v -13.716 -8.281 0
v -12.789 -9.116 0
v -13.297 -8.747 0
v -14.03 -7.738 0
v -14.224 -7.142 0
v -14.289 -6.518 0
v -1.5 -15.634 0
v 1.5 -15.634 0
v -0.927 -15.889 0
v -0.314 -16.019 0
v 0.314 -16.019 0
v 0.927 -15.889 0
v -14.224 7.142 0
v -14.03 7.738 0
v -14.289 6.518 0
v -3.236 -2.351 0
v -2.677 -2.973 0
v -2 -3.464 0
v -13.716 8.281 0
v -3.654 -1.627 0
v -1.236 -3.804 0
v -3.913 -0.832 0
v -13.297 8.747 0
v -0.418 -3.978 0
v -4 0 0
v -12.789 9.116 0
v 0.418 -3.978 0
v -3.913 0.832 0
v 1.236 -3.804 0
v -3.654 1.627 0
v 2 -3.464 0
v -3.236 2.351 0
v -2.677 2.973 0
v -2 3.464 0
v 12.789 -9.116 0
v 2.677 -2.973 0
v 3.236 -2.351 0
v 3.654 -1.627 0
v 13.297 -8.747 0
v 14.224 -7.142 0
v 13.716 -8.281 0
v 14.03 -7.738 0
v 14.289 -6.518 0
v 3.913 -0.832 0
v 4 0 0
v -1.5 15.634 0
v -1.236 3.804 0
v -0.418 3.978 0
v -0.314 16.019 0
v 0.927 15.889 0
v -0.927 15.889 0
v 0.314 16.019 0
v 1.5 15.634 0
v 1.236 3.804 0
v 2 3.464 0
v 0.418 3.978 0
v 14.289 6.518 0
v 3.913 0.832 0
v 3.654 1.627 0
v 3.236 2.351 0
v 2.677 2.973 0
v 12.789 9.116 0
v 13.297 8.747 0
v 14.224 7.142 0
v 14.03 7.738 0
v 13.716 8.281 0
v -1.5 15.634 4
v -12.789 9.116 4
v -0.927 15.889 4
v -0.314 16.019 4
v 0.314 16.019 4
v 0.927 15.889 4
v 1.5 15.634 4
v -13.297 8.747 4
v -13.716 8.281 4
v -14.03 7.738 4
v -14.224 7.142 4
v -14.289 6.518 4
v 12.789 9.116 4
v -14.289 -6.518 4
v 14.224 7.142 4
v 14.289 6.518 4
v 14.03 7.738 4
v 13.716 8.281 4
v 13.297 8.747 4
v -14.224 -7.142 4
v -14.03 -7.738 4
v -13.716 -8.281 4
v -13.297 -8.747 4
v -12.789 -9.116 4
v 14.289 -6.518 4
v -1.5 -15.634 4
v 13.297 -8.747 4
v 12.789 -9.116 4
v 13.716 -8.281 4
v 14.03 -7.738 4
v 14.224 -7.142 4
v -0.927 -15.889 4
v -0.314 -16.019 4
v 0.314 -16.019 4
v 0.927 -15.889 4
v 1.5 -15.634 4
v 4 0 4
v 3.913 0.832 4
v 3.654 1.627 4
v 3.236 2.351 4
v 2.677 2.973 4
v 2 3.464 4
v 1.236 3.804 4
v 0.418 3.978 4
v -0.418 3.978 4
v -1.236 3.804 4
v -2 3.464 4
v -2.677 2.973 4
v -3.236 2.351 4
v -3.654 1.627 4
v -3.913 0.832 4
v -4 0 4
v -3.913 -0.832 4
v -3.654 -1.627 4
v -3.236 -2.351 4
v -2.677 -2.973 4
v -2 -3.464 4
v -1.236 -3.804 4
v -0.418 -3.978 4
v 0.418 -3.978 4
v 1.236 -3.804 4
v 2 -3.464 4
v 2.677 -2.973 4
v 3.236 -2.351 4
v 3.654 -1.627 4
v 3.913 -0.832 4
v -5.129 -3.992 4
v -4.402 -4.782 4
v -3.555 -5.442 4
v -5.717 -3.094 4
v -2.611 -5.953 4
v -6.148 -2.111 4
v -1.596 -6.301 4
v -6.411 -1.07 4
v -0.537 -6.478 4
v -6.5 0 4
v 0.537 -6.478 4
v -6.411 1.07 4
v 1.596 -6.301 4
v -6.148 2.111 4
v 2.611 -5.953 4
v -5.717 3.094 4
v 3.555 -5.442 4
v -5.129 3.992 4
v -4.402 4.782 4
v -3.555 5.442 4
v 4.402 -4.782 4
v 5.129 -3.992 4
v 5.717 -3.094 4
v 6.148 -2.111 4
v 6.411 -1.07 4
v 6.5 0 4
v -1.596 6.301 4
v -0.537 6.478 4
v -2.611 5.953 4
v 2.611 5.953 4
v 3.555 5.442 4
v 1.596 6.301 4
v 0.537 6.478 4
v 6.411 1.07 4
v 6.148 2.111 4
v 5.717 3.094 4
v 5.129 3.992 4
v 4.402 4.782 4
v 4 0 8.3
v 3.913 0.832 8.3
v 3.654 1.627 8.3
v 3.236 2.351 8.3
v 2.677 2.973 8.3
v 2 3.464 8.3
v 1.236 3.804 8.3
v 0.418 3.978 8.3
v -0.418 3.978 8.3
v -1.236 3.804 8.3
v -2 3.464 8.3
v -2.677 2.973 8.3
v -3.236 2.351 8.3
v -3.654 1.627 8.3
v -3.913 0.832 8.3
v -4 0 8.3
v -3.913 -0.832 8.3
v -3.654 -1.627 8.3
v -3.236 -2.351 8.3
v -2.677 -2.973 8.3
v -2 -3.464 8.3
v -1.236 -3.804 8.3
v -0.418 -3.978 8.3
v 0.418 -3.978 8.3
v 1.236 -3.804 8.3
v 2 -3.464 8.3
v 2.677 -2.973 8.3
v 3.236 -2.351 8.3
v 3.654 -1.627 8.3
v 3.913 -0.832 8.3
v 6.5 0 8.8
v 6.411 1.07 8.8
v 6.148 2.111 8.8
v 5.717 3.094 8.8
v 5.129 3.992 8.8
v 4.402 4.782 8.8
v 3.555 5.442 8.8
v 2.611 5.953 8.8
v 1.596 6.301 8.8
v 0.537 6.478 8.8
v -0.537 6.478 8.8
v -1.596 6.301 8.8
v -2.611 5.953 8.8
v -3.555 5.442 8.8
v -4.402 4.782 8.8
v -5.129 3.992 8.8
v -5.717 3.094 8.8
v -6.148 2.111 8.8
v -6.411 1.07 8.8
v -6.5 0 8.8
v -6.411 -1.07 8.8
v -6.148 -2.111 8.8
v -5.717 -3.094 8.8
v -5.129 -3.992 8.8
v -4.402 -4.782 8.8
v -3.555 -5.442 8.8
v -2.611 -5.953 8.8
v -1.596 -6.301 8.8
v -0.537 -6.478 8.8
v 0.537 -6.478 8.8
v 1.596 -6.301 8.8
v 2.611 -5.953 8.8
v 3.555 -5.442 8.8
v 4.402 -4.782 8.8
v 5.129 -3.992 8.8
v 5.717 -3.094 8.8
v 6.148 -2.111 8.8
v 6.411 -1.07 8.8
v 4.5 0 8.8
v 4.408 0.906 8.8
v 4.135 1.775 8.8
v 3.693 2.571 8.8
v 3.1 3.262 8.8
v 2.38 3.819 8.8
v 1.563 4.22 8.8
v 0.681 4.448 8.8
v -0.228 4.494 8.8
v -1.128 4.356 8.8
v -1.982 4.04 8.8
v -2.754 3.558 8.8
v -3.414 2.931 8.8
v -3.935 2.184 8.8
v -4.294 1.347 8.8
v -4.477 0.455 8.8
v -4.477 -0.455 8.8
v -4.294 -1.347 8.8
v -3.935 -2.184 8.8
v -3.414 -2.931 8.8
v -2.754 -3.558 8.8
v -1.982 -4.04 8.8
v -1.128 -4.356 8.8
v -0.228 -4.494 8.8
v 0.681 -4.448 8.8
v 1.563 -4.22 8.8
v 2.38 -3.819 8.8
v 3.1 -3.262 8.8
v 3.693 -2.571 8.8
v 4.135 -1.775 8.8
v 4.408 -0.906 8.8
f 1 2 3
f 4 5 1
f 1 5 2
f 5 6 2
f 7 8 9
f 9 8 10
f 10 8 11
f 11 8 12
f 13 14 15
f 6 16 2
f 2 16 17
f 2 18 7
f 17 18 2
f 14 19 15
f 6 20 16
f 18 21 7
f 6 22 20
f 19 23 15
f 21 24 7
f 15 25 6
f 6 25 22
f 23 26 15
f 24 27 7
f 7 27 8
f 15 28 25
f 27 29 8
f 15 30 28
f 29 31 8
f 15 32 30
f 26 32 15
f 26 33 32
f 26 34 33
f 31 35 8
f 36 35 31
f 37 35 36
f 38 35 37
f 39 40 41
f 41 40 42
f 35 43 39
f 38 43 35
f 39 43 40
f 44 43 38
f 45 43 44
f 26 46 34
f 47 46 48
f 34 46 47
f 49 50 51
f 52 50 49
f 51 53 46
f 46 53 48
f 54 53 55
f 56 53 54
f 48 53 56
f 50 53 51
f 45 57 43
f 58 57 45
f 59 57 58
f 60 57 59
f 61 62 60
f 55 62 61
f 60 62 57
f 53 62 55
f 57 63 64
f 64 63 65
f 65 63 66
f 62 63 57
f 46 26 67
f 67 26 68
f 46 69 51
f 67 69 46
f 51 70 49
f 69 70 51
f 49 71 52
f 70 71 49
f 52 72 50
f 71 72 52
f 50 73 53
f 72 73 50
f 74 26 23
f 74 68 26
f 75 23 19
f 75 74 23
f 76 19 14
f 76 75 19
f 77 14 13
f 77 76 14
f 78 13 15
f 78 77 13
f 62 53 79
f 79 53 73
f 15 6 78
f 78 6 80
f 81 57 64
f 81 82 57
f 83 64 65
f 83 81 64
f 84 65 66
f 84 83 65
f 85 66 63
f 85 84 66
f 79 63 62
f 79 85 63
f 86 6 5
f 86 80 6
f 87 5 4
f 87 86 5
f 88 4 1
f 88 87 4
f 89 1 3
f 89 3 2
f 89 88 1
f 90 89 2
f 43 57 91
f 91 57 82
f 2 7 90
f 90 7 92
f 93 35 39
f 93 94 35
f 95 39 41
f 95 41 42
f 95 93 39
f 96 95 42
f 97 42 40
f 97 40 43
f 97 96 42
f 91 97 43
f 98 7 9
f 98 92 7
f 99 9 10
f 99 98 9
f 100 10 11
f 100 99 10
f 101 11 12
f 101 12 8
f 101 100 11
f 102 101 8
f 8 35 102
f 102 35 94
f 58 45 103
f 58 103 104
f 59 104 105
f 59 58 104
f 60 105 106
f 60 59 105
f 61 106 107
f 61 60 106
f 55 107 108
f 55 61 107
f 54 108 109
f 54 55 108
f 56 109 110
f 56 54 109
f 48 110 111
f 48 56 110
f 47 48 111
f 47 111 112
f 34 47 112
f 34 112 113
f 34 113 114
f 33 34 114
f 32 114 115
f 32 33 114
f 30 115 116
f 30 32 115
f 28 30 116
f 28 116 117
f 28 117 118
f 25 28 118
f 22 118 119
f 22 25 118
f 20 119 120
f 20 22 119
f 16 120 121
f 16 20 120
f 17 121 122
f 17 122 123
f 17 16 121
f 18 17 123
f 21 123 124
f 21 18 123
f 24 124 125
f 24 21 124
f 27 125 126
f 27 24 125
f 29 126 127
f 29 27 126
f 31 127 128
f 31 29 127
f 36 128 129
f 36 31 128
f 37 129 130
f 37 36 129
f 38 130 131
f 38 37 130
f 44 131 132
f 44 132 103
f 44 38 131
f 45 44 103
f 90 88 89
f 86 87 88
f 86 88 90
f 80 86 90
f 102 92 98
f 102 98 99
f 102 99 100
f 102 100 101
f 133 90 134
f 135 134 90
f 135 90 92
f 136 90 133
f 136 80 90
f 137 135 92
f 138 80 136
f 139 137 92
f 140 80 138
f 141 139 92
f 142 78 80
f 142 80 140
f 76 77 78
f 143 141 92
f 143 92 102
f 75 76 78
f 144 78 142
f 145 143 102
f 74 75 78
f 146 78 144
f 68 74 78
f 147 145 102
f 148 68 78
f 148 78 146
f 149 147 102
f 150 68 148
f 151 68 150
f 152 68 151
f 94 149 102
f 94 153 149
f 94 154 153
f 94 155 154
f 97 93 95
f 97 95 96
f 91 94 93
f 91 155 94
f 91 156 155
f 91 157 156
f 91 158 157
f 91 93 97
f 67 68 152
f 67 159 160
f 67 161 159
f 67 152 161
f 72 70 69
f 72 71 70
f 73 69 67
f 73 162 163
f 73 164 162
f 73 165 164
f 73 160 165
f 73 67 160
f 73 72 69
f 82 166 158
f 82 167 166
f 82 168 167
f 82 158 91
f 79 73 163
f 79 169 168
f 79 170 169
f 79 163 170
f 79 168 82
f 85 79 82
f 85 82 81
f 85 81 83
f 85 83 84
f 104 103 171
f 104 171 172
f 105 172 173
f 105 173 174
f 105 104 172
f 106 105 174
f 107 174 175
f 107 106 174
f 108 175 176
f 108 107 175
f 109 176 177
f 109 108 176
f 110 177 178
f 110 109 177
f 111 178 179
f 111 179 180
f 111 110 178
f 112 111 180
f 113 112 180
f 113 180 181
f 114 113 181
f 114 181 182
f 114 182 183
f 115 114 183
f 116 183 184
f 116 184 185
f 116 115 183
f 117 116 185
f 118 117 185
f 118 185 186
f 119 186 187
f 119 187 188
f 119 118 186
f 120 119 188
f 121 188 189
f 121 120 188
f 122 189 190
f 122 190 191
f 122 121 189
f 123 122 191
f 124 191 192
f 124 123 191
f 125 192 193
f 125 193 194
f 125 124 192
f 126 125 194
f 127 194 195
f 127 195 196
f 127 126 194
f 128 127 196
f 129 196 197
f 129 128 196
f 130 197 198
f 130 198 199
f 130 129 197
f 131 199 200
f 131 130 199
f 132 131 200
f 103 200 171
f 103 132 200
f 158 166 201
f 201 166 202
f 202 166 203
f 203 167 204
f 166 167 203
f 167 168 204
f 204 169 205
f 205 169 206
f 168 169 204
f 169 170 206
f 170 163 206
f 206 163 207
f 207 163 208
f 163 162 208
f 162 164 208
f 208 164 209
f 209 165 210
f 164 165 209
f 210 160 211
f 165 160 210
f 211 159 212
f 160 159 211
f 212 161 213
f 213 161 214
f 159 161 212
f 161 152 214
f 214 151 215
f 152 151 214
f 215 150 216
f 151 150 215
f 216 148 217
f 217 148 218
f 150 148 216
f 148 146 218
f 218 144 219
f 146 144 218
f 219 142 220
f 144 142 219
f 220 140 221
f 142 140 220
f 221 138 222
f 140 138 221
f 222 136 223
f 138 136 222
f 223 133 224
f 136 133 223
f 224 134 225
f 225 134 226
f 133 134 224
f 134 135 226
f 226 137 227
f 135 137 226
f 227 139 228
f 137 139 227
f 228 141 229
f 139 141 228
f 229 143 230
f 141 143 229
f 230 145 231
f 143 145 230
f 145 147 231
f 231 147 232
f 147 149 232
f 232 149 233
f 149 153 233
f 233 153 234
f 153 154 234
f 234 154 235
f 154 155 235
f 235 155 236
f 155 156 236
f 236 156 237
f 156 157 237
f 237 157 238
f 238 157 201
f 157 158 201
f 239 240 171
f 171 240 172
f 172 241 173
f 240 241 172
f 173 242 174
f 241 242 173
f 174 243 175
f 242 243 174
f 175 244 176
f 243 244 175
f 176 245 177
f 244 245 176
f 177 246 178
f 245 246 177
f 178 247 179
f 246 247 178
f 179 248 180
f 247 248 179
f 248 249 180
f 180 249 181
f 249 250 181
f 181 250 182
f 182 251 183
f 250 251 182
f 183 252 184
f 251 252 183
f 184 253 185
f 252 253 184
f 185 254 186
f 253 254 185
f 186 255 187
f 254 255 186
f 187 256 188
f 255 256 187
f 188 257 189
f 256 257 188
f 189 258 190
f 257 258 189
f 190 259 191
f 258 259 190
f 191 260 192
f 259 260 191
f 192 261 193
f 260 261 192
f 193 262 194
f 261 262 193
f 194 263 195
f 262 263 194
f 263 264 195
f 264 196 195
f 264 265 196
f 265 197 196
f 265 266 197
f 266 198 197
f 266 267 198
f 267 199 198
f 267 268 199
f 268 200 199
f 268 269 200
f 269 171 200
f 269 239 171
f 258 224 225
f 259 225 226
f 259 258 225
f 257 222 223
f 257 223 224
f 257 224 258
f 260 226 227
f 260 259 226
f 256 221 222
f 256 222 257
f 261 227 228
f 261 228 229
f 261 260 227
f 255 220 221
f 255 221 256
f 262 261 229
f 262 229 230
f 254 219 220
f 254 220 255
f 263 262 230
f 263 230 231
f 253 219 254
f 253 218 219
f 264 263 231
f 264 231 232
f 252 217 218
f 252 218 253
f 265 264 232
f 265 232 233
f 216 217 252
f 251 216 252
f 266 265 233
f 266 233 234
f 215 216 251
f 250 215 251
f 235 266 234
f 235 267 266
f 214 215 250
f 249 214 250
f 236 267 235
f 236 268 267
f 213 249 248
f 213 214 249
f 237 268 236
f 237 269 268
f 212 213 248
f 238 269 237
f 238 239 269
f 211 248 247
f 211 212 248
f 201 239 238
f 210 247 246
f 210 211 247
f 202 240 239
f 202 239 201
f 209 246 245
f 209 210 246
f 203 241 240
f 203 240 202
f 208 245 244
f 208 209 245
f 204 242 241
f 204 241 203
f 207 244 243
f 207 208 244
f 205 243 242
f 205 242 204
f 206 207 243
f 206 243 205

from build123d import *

# Parameters (mm, degrees)
SKETCH_R      = 4
PAD_DEPTH     = 4
SKETCH001_R   = 6.5
SKETCH001_R_2 = 4
PAD001_DEPTH  = 4.8
CHAMFER_SIZE  = 0.5
FILLET_R      = 3


with BuildPart() as part:
    # Sketch → Pad (new body)
    with BuildSketch(Plane.XY):
        Polygon((0, 16.5), (-14.289419, 8.25), (-14.289419, -8.25), (0, -16.5), (14.289419, -8.25), (14.289419, 8.25), align=None)
        Circle(SKETCH_R, mode=Mode.SUBTRACT)
    extrude(amount=PAD_DEPTH)

    # Sketch001 (on Face9 of Pad) → Pad001 (join)
    with BuildSketch(Plane.XY.offset(4)):
        Circle(SKETCH001_R)
        Circle(SKETCH001_R_2, mode=Mode.SUBTRACT)
    extrude(amount=PAD001_DEPTH)

    # Chamfer
    chamfer_edges = [part.edges().sort_by_distance(p)[0] for p in [
        (-4, 0, 8.8),
    ]]
    chamfer(chamfer_edges, length=CHAMFER_SIZE)

    # Fillet
    fillet_edges = [part.edges().sort_by_distance(p)[0] for p in [
        (0, -16.5, 2),
        (14.289419, -8.25, 2),
        (14.289419, 8.25, 2),
        (-14.289419, -8.25, 2),
        (-14.289419, 8.25, 2),
        (0, 16.5, 2),
    ]]
    fillet(fillet_edges, radius=FILLET_R)


solid = part.part
